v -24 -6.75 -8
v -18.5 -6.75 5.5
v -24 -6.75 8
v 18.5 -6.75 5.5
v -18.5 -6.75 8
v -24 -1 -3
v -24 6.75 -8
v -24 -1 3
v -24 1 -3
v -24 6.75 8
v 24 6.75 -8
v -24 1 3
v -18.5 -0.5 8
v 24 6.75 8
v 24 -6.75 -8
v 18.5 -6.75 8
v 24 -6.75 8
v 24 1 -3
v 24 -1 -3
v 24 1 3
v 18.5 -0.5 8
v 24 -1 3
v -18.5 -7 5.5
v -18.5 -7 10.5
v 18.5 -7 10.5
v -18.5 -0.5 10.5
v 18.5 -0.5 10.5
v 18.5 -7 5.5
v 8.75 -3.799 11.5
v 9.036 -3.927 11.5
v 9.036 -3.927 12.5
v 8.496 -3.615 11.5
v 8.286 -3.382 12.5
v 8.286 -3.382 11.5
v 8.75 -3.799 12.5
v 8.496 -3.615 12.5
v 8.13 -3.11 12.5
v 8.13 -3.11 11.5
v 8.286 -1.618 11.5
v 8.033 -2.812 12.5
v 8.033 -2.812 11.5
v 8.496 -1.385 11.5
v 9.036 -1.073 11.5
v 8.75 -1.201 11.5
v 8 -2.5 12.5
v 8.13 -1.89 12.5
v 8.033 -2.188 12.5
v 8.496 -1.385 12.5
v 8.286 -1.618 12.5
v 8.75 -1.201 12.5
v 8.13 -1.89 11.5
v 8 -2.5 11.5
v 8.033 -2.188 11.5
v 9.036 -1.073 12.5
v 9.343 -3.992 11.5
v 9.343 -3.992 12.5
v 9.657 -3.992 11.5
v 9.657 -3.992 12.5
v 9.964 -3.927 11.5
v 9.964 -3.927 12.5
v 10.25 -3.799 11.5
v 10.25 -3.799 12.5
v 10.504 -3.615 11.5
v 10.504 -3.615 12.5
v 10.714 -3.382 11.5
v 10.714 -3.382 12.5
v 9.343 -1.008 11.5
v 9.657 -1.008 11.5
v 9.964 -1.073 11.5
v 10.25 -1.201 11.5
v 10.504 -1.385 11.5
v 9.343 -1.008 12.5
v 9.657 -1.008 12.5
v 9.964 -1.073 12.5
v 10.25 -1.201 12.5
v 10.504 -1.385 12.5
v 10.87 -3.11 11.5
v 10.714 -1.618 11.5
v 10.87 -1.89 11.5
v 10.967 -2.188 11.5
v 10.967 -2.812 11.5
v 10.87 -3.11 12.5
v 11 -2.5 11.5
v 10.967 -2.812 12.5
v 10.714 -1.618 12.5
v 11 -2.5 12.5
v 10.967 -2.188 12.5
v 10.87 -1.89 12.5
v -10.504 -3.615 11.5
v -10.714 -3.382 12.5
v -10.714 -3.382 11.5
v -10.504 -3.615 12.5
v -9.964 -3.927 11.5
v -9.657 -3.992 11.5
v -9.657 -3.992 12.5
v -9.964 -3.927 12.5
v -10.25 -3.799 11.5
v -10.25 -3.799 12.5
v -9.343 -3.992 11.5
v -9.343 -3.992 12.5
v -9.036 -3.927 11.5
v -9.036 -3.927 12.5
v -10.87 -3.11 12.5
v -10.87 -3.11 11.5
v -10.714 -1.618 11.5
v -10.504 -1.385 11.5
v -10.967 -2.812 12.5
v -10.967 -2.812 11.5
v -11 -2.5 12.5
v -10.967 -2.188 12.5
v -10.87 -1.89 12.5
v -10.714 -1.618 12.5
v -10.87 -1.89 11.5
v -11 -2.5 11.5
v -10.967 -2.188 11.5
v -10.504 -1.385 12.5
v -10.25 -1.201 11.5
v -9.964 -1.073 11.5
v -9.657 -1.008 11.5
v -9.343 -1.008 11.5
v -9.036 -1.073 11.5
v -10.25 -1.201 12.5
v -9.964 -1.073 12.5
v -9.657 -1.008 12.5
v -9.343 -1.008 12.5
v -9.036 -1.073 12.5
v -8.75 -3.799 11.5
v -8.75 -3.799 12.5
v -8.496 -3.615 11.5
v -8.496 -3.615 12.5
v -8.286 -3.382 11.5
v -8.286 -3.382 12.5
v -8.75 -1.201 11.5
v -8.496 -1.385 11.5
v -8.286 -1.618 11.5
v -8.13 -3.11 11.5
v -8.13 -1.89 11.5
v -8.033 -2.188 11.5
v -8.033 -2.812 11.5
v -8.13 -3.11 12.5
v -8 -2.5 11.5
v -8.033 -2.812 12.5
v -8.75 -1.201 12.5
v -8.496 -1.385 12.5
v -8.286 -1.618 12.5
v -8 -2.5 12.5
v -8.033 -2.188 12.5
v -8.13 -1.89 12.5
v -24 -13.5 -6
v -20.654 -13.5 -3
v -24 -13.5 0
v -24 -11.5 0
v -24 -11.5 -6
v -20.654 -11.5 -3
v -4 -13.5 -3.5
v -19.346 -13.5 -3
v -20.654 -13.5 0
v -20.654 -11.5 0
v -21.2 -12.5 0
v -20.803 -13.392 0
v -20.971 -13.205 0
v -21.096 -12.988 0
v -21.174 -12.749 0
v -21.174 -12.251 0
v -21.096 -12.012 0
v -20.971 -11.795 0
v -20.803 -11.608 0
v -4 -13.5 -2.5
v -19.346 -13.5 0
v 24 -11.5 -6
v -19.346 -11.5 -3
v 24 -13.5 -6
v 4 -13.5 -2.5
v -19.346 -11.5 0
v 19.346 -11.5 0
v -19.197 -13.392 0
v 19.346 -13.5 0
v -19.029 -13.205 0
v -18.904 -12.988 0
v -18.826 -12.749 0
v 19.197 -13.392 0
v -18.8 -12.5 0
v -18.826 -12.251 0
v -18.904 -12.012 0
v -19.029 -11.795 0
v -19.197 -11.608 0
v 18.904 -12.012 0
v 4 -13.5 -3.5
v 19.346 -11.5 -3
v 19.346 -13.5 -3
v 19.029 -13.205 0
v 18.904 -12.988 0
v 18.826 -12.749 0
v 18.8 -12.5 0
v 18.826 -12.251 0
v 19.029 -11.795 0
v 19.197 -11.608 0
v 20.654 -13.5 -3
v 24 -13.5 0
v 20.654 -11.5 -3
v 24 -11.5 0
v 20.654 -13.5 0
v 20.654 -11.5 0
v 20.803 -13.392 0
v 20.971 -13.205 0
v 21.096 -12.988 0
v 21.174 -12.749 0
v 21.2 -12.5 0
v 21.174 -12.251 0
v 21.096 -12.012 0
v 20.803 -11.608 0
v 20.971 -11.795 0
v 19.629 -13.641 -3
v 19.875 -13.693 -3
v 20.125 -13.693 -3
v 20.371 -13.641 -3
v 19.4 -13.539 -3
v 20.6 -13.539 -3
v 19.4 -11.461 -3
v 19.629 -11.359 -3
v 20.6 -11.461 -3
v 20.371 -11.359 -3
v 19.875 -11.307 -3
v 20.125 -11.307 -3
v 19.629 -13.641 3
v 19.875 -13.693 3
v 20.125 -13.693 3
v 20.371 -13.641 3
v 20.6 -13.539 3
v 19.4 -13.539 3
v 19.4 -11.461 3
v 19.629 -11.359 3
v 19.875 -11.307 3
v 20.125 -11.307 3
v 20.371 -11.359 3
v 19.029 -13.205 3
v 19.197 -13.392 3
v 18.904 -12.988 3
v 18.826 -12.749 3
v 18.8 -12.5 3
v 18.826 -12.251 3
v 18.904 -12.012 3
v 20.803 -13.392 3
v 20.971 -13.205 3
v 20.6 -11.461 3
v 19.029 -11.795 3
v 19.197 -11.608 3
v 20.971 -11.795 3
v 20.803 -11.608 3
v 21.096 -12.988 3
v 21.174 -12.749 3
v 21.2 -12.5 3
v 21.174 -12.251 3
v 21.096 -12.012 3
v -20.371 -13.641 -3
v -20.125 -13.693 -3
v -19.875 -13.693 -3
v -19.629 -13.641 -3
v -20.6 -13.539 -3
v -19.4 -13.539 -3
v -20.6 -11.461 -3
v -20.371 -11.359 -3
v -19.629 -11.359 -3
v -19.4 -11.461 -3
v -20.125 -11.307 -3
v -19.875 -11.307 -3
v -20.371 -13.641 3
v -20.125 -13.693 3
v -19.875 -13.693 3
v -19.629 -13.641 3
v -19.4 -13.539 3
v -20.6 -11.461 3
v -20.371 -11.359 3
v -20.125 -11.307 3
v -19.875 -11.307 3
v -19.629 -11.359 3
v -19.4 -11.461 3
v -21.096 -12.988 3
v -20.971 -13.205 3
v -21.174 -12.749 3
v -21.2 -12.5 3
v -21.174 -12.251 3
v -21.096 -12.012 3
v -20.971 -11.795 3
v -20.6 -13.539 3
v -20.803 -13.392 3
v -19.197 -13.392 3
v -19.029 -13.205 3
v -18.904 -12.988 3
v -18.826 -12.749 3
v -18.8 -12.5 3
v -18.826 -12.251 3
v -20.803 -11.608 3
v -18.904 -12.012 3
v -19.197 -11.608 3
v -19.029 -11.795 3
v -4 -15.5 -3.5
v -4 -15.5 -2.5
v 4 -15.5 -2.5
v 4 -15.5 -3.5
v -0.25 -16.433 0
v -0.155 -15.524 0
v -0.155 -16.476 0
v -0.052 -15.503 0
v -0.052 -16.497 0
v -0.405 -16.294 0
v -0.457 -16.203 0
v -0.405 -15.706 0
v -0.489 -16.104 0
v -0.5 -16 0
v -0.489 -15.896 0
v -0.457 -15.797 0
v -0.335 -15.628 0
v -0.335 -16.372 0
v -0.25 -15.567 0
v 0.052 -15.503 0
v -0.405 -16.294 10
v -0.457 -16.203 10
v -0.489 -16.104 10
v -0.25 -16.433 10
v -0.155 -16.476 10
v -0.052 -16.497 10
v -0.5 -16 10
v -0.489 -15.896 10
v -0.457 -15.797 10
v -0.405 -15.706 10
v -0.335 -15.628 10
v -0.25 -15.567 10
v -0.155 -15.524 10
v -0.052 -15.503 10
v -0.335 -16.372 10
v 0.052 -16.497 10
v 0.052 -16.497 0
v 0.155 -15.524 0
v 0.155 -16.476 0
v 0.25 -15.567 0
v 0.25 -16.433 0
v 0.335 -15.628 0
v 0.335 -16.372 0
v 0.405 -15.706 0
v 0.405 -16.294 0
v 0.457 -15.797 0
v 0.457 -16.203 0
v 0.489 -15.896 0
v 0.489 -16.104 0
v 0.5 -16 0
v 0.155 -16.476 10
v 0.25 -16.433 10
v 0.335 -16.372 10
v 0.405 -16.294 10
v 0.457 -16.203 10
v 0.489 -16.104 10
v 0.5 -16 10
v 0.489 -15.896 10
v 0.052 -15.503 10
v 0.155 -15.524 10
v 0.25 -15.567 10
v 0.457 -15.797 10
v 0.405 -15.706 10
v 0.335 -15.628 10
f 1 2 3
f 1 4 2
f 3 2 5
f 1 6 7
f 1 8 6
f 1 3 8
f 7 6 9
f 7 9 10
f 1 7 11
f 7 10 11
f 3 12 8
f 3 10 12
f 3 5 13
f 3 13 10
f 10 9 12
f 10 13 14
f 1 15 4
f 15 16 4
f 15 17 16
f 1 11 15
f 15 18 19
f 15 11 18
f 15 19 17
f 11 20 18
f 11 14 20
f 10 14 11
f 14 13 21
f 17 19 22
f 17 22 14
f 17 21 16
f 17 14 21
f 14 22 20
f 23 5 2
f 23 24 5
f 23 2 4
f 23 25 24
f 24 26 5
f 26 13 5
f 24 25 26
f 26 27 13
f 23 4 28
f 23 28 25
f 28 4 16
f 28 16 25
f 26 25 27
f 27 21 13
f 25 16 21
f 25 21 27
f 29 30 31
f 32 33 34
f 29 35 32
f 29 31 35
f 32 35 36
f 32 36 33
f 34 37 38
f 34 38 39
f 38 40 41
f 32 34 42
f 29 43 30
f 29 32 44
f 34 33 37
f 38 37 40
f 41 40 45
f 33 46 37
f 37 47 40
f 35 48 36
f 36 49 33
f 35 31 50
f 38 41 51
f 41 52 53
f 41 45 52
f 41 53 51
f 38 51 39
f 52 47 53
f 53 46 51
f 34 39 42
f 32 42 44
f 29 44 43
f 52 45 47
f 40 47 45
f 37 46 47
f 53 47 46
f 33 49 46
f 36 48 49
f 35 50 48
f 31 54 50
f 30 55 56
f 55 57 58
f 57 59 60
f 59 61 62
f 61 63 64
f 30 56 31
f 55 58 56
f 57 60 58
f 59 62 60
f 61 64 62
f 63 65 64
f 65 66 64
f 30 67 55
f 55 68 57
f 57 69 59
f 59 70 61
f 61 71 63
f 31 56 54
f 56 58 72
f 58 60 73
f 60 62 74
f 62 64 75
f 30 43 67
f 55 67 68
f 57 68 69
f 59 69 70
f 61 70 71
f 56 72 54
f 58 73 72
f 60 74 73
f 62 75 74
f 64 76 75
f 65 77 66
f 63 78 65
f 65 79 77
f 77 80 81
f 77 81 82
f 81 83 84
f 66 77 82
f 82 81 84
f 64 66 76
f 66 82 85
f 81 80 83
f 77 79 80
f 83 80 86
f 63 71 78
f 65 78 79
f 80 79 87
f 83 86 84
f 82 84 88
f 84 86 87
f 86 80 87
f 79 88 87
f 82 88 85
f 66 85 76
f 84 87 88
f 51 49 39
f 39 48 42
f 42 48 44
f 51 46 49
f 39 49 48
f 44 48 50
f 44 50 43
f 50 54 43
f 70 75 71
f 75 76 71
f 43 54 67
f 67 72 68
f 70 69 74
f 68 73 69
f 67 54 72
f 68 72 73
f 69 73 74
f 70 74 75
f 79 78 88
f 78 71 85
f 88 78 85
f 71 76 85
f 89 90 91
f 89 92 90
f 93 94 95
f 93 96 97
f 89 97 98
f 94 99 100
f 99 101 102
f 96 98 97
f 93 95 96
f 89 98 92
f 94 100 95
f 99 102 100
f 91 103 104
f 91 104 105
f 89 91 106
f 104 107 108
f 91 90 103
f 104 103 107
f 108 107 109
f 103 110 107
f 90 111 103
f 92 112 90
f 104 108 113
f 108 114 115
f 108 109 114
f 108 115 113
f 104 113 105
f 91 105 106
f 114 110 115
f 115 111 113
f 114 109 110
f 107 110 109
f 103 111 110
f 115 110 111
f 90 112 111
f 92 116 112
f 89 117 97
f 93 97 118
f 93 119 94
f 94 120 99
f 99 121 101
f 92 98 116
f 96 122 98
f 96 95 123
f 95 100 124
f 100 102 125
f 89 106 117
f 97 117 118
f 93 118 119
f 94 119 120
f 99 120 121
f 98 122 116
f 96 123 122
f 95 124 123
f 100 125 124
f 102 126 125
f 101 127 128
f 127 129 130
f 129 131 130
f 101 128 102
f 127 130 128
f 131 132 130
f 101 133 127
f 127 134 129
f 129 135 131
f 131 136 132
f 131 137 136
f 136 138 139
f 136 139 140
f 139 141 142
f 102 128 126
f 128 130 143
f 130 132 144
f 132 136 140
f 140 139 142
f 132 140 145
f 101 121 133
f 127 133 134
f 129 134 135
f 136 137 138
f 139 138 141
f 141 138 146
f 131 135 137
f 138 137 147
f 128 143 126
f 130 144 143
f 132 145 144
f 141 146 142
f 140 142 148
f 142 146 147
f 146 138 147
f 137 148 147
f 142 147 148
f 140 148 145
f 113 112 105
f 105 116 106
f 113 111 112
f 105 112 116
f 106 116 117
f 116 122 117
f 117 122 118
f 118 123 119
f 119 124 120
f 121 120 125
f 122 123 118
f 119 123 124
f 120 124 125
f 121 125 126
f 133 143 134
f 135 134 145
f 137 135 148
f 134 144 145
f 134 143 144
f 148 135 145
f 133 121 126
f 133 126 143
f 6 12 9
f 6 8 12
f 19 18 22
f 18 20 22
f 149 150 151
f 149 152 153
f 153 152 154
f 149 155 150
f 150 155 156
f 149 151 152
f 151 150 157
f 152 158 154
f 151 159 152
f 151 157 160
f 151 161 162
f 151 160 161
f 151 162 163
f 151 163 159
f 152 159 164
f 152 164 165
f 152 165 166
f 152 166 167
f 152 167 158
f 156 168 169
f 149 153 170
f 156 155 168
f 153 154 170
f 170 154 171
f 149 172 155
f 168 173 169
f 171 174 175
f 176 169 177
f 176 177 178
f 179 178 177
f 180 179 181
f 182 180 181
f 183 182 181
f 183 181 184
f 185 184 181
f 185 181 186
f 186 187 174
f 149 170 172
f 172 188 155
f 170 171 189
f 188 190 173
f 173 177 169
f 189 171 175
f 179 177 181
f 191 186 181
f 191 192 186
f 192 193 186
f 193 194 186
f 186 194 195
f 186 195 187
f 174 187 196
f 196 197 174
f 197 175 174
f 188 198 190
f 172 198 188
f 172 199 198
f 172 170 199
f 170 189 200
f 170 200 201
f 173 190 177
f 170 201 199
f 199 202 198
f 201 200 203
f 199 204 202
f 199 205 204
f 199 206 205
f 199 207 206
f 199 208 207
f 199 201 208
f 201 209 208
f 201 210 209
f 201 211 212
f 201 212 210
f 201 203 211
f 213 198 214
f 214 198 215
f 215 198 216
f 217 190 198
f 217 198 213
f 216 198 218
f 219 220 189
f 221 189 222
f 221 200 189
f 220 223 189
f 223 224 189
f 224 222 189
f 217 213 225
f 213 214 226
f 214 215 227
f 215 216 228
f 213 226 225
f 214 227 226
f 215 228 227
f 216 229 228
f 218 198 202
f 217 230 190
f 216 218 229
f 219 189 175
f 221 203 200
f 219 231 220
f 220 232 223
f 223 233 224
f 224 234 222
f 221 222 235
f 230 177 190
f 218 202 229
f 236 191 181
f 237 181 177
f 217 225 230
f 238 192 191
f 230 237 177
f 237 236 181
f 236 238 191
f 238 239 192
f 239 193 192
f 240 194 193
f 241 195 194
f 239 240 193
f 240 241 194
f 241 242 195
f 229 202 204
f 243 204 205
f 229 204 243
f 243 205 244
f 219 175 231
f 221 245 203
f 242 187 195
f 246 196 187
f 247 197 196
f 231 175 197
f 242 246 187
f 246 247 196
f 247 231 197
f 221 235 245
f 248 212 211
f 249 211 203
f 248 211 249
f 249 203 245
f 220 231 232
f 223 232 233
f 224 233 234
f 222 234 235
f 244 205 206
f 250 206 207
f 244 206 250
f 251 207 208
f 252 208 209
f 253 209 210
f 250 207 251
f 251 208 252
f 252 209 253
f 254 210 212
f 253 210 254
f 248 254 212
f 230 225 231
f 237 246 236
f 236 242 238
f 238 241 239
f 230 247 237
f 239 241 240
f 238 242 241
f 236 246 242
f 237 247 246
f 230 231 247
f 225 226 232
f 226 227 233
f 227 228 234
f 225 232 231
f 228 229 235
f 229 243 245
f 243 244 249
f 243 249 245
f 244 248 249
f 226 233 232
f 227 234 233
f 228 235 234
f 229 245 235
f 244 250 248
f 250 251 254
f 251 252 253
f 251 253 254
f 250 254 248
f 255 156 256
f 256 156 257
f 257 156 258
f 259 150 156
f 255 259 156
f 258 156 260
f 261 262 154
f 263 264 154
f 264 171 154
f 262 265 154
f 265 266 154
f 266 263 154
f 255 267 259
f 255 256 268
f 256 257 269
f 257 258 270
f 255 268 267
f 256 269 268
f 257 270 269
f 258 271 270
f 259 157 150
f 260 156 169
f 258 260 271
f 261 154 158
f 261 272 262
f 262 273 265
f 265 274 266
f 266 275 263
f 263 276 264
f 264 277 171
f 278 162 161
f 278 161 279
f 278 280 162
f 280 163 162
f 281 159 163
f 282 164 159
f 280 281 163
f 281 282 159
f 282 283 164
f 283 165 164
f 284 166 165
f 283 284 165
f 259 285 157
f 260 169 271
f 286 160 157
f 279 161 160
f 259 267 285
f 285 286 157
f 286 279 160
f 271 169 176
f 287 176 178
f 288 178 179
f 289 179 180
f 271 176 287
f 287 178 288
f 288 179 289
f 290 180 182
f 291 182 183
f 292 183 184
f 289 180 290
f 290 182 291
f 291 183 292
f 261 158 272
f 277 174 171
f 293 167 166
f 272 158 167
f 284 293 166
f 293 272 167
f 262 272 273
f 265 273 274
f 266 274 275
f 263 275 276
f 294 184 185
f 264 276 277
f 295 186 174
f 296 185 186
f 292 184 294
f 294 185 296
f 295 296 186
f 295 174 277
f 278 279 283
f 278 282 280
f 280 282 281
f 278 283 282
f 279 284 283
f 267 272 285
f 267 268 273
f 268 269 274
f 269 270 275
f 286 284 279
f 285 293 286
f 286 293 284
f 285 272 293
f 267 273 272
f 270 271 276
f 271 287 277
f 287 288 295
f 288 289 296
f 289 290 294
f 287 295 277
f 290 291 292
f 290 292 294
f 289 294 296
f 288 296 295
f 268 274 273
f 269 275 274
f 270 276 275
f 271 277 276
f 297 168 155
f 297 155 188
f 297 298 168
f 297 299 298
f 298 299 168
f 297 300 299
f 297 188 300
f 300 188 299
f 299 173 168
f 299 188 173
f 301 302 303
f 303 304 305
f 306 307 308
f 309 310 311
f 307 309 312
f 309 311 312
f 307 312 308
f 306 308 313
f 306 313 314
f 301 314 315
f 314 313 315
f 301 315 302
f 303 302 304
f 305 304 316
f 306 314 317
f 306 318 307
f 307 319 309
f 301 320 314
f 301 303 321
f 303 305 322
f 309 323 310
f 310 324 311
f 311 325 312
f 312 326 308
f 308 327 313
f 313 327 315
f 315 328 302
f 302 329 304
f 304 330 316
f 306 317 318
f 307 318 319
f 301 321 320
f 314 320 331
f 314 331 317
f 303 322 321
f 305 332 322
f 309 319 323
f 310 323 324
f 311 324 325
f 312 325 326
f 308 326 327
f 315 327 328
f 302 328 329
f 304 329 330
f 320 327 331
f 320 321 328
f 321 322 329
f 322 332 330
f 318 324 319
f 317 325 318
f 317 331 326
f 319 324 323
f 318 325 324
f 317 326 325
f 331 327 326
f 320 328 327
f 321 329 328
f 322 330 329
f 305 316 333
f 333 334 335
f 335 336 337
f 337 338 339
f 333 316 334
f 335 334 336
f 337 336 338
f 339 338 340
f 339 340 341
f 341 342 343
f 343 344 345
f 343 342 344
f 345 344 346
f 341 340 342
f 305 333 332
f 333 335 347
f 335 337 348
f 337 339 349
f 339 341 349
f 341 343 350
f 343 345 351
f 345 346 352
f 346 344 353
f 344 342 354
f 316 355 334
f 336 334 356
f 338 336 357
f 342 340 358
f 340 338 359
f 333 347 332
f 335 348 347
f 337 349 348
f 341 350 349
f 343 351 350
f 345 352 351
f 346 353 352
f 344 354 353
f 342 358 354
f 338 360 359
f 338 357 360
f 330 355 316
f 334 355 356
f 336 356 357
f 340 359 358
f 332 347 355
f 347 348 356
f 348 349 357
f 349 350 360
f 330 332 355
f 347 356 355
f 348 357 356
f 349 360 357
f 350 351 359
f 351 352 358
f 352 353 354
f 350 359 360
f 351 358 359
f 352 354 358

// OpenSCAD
module gp2y0a21yk0f() {

  // 本体ケース
  cube([48, 13.5, 16], center = true);

  // レンズ部突起
  translate([0, -3.75, 8]) cube([37, 6.5, 5], center = true);

  // 発光側レンズ窓
  translate([9.5, -2.5, 11.5]) cylinder(h=1, r=1.5, $fn=30);

  // 受光側レンズ窓
  translate([-9.5, -2.5, 11.5]) cylinder(h=1, r=1.5, $fn=30);

  // 連結バー
  cube([48, 2, 6], center = true);
  translate([0, -13.5 + 1, -3]) cube([48, 2, 6], center = true);

  // 取付穴
  translate([20, -12.5, -3]) cylinder(h=6, r=1.2, $fn=30);
  translate([-20, -12.5, -3]) cylinder(h=6, r=1.2, $fn=30);

  // ケーブル取り出し切欠き
  translate([0, -14.5, -3]) cube([8, 2, 1], center = true);

  // ケーブル (簡易表現)
  translate([0, -16, 0]) cylinder(h=10, r=0.5, $fn=30);
}

gp2y0a21yk0f();
